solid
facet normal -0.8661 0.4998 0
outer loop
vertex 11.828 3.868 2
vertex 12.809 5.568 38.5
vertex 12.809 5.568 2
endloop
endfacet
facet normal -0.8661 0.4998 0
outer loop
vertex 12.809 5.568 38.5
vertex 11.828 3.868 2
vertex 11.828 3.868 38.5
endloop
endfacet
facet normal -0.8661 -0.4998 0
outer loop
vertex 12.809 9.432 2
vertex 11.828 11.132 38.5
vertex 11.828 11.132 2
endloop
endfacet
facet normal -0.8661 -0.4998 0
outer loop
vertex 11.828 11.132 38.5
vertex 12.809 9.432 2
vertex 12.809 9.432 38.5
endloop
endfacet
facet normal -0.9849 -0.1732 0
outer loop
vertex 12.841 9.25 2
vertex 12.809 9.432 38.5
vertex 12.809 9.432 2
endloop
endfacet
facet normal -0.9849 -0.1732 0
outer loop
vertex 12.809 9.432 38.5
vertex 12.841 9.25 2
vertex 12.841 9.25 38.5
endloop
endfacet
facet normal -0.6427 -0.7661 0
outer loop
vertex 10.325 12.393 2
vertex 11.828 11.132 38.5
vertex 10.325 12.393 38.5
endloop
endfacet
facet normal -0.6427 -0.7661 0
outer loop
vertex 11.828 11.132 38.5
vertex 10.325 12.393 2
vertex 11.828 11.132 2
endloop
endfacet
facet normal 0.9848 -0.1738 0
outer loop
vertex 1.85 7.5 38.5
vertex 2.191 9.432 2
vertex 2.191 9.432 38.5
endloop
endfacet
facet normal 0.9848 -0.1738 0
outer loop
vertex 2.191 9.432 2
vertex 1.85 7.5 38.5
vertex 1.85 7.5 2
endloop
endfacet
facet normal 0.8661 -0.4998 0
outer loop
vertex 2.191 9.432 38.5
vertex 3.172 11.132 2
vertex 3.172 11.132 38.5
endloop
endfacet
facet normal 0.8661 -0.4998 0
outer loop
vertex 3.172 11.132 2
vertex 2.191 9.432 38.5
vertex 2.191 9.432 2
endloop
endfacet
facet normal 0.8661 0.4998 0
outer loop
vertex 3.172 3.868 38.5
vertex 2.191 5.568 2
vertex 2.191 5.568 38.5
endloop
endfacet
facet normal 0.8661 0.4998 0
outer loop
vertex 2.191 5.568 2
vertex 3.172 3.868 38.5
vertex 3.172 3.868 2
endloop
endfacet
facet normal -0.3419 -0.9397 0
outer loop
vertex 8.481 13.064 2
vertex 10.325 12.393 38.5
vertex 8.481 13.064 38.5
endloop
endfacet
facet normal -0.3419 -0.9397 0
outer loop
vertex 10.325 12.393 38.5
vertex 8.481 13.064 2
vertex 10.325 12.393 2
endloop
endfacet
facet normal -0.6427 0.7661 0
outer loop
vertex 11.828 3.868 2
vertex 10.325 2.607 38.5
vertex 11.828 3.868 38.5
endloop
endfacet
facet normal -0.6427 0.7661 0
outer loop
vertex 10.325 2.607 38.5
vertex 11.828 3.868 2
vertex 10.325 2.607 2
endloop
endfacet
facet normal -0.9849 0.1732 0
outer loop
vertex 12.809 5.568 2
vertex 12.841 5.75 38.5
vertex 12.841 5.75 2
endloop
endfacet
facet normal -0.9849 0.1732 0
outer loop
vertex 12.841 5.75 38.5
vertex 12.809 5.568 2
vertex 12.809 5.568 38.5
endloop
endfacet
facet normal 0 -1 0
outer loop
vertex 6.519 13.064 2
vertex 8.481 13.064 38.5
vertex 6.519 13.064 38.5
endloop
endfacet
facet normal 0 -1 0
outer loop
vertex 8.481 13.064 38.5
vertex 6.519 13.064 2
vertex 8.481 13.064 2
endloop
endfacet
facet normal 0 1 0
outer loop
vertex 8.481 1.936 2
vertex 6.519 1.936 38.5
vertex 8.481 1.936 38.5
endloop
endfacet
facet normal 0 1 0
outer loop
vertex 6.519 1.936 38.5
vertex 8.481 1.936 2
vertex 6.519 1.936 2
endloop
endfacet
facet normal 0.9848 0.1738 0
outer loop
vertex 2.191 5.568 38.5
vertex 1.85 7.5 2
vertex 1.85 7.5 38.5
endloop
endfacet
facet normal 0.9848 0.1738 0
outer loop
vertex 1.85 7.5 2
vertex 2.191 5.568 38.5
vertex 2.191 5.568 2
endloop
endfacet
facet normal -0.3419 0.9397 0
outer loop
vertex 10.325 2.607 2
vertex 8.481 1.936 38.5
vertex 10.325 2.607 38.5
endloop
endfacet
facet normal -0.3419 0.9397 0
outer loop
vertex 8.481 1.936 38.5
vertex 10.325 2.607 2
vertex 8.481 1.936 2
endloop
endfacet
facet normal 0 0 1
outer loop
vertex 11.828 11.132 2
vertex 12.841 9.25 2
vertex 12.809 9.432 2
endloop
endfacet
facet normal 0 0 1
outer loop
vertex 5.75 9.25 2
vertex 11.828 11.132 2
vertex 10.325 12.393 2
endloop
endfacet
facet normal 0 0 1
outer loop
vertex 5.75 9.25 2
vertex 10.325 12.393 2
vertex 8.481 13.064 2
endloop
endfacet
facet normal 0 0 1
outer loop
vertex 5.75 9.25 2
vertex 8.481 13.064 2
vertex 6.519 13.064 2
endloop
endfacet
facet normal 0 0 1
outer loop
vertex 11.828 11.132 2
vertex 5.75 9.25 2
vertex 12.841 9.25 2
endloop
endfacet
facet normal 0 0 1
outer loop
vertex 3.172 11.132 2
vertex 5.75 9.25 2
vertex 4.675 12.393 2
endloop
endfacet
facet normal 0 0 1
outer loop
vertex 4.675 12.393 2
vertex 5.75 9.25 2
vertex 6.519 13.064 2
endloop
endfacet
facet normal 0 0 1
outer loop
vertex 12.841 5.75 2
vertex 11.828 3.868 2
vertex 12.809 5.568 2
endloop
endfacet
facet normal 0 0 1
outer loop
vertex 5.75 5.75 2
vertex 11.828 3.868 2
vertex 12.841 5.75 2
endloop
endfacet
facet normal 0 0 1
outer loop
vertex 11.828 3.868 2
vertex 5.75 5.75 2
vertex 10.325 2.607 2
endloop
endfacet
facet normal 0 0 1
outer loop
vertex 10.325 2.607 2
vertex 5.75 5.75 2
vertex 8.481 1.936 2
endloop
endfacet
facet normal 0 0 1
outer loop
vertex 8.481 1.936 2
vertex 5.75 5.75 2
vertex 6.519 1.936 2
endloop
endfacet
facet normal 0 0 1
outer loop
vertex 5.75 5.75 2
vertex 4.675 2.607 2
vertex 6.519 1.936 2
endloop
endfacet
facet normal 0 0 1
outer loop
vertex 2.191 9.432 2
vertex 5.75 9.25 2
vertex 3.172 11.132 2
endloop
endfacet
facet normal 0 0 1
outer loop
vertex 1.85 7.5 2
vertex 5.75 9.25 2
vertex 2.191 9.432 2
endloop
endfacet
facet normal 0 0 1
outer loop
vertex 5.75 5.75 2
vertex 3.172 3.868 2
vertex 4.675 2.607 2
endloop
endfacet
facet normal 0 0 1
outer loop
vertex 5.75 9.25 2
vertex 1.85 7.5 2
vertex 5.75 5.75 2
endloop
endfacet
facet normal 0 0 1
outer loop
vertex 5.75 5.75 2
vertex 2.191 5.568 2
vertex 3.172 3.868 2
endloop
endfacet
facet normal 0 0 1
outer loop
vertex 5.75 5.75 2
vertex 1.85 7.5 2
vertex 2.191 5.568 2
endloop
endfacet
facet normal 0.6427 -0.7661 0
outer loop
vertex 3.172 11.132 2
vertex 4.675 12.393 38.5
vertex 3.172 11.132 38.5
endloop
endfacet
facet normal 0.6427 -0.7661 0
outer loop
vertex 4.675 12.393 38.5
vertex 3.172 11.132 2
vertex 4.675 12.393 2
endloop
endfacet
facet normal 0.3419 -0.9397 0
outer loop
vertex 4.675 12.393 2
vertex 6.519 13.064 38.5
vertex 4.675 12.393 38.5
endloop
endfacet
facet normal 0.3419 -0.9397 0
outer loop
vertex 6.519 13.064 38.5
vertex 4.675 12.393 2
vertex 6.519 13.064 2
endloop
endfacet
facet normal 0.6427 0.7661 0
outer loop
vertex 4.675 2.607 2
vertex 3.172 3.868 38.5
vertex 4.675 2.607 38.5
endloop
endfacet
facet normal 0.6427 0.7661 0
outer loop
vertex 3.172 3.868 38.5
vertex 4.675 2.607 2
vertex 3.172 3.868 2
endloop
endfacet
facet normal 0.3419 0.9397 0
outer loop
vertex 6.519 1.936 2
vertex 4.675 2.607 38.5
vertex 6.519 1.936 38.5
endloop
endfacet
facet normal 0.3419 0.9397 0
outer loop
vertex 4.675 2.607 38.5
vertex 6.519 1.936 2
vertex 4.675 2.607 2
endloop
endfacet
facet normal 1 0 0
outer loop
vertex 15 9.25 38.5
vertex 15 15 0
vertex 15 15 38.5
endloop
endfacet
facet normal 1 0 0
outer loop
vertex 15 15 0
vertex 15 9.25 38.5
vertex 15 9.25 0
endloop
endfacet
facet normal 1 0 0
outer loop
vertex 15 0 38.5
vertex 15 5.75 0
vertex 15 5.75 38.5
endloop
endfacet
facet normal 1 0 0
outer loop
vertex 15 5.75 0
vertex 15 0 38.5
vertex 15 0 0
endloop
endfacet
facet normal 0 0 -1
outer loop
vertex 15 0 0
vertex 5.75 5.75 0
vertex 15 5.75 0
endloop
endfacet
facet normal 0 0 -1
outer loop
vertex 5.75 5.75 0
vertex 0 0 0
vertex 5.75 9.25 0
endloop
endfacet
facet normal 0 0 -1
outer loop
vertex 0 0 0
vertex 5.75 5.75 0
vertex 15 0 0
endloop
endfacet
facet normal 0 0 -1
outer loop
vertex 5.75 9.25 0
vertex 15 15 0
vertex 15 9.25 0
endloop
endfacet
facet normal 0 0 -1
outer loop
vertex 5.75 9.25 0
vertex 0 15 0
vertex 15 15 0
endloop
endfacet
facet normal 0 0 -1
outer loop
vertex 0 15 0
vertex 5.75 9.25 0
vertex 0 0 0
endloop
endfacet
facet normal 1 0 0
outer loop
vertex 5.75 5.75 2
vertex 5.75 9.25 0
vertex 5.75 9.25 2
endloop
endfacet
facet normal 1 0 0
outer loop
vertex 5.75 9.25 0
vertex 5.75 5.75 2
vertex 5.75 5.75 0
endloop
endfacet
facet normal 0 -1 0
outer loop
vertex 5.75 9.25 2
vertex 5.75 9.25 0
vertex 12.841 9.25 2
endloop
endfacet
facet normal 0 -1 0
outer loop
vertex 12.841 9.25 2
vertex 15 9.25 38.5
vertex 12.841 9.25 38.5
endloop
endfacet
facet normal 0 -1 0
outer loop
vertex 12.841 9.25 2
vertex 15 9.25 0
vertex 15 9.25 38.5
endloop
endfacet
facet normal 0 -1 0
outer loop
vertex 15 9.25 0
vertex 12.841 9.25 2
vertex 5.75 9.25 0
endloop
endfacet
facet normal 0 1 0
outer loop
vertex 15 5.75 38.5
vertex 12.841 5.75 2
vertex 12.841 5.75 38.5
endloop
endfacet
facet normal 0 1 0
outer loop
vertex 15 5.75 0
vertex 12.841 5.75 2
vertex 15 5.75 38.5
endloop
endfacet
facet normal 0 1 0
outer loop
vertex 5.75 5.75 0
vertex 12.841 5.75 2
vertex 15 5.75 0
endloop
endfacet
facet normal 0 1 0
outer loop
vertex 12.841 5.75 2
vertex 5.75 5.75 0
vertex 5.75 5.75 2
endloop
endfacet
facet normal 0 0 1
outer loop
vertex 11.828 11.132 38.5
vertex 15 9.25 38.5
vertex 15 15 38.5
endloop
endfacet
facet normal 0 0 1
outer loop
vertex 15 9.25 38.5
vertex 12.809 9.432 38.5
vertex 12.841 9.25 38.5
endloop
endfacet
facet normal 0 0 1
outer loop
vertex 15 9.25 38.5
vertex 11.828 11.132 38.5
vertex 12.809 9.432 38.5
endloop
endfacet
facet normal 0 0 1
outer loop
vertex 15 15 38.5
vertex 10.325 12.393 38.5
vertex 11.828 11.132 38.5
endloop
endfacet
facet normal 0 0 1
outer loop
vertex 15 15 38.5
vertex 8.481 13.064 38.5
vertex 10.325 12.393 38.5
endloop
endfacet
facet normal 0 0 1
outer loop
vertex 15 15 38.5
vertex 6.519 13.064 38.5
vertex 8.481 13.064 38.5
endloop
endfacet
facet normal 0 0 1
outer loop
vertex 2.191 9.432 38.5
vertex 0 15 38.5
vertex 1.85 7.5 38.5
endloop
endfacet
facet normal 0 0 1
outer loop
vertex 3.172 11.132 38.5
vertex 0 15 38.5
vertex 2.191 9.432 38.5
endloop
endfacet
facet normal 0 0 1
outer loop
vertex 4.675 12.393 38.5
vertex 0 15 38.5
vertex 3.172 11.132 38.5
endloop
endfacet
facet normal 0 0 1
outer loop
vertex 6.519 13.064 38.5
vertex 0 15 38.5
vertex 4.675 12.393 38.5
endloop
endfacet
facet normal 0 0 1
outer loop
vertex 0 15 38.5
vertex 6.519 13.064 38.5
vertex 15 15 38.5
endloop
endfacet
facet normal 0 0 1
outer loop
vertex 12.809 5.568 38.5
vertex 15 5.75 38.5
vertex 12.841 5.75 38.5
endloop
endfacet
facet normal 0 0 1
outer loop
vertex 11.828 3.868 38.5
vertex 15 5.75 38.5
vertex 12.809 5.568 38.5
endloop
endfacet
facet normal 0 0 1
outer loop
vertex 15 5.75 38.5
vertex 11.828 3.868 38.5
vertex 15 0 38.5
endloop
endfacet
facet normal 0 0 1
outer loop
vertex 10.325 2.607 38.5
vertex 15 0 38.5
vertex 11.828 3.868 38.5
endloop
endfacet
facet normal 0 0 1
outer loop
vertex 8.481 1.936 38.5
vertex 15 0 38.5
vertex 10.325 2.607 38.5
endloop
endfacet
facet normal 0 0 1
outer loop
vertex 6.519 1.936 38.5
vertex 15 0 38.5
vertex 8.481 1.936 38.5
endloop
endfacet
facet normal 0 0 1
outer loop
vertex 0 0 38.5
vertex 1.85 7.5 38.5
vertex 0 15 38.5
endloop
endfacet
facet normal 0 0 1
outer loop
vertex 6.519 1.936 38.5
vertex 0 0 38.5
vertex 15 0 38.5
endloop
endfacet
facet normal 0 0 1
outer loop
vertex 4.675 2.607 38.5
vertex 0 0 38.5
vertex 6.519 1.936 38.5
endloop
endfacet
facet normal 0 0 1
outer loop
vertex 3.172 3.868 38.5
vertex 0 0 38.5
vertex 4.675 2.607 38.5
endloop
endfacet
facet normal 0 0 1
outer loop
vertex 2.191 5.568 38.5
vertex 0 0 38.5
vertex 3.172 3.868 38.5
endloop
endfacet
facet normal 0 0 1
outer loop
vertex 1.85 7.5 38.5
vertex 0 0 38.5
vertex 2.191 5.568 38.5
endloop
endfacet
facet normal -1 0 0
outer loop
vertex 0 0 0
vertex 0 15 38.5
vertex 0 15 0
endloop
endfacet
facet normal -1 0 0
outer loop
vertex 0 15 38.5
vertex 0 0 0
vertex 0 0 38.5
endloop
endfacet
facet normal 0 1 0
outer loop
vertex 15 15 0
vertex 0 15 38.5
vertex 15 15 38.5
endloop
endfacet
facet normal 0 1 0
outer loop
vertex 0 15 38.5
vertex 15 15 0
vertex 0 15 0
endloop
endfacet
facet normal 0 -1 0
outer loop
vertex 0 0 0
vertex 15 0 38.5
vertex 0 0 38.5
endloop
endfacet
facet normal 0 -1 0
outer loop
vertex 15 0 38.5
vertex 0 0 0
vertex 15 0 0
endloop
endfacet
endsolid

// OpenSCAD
//// CONFIGURATION ////
width=15;
length=38.5;
plugSize=11.3;
wireSize=3.5;

//// DERIVED VARS ////

// Add 1.5mm of material on either side of the holes
totalLength=length+2;

difference() {
  union() {
    translate([0,0,0])
      cube([width,width,length],center=false);
//      cylinder(h=width,d=height,center=false);
//    translate([(holes)*spacing,height/2,0])
//      cylinder(h=width,d=height,center=false);
  }
  union() {
//    for(x =[0 : 1 : holes-1]) {
    translate([width/2,width/2,totalLength-length])
      cylinder(h=length,d=plugSize,center=false); 
    translate([width/2-wireSize/2,width/2-(wireSize/2),0])
      cube([width/2+wireSize/2,wireSize,totalLength],center=false);
   
//    }
  }
}
